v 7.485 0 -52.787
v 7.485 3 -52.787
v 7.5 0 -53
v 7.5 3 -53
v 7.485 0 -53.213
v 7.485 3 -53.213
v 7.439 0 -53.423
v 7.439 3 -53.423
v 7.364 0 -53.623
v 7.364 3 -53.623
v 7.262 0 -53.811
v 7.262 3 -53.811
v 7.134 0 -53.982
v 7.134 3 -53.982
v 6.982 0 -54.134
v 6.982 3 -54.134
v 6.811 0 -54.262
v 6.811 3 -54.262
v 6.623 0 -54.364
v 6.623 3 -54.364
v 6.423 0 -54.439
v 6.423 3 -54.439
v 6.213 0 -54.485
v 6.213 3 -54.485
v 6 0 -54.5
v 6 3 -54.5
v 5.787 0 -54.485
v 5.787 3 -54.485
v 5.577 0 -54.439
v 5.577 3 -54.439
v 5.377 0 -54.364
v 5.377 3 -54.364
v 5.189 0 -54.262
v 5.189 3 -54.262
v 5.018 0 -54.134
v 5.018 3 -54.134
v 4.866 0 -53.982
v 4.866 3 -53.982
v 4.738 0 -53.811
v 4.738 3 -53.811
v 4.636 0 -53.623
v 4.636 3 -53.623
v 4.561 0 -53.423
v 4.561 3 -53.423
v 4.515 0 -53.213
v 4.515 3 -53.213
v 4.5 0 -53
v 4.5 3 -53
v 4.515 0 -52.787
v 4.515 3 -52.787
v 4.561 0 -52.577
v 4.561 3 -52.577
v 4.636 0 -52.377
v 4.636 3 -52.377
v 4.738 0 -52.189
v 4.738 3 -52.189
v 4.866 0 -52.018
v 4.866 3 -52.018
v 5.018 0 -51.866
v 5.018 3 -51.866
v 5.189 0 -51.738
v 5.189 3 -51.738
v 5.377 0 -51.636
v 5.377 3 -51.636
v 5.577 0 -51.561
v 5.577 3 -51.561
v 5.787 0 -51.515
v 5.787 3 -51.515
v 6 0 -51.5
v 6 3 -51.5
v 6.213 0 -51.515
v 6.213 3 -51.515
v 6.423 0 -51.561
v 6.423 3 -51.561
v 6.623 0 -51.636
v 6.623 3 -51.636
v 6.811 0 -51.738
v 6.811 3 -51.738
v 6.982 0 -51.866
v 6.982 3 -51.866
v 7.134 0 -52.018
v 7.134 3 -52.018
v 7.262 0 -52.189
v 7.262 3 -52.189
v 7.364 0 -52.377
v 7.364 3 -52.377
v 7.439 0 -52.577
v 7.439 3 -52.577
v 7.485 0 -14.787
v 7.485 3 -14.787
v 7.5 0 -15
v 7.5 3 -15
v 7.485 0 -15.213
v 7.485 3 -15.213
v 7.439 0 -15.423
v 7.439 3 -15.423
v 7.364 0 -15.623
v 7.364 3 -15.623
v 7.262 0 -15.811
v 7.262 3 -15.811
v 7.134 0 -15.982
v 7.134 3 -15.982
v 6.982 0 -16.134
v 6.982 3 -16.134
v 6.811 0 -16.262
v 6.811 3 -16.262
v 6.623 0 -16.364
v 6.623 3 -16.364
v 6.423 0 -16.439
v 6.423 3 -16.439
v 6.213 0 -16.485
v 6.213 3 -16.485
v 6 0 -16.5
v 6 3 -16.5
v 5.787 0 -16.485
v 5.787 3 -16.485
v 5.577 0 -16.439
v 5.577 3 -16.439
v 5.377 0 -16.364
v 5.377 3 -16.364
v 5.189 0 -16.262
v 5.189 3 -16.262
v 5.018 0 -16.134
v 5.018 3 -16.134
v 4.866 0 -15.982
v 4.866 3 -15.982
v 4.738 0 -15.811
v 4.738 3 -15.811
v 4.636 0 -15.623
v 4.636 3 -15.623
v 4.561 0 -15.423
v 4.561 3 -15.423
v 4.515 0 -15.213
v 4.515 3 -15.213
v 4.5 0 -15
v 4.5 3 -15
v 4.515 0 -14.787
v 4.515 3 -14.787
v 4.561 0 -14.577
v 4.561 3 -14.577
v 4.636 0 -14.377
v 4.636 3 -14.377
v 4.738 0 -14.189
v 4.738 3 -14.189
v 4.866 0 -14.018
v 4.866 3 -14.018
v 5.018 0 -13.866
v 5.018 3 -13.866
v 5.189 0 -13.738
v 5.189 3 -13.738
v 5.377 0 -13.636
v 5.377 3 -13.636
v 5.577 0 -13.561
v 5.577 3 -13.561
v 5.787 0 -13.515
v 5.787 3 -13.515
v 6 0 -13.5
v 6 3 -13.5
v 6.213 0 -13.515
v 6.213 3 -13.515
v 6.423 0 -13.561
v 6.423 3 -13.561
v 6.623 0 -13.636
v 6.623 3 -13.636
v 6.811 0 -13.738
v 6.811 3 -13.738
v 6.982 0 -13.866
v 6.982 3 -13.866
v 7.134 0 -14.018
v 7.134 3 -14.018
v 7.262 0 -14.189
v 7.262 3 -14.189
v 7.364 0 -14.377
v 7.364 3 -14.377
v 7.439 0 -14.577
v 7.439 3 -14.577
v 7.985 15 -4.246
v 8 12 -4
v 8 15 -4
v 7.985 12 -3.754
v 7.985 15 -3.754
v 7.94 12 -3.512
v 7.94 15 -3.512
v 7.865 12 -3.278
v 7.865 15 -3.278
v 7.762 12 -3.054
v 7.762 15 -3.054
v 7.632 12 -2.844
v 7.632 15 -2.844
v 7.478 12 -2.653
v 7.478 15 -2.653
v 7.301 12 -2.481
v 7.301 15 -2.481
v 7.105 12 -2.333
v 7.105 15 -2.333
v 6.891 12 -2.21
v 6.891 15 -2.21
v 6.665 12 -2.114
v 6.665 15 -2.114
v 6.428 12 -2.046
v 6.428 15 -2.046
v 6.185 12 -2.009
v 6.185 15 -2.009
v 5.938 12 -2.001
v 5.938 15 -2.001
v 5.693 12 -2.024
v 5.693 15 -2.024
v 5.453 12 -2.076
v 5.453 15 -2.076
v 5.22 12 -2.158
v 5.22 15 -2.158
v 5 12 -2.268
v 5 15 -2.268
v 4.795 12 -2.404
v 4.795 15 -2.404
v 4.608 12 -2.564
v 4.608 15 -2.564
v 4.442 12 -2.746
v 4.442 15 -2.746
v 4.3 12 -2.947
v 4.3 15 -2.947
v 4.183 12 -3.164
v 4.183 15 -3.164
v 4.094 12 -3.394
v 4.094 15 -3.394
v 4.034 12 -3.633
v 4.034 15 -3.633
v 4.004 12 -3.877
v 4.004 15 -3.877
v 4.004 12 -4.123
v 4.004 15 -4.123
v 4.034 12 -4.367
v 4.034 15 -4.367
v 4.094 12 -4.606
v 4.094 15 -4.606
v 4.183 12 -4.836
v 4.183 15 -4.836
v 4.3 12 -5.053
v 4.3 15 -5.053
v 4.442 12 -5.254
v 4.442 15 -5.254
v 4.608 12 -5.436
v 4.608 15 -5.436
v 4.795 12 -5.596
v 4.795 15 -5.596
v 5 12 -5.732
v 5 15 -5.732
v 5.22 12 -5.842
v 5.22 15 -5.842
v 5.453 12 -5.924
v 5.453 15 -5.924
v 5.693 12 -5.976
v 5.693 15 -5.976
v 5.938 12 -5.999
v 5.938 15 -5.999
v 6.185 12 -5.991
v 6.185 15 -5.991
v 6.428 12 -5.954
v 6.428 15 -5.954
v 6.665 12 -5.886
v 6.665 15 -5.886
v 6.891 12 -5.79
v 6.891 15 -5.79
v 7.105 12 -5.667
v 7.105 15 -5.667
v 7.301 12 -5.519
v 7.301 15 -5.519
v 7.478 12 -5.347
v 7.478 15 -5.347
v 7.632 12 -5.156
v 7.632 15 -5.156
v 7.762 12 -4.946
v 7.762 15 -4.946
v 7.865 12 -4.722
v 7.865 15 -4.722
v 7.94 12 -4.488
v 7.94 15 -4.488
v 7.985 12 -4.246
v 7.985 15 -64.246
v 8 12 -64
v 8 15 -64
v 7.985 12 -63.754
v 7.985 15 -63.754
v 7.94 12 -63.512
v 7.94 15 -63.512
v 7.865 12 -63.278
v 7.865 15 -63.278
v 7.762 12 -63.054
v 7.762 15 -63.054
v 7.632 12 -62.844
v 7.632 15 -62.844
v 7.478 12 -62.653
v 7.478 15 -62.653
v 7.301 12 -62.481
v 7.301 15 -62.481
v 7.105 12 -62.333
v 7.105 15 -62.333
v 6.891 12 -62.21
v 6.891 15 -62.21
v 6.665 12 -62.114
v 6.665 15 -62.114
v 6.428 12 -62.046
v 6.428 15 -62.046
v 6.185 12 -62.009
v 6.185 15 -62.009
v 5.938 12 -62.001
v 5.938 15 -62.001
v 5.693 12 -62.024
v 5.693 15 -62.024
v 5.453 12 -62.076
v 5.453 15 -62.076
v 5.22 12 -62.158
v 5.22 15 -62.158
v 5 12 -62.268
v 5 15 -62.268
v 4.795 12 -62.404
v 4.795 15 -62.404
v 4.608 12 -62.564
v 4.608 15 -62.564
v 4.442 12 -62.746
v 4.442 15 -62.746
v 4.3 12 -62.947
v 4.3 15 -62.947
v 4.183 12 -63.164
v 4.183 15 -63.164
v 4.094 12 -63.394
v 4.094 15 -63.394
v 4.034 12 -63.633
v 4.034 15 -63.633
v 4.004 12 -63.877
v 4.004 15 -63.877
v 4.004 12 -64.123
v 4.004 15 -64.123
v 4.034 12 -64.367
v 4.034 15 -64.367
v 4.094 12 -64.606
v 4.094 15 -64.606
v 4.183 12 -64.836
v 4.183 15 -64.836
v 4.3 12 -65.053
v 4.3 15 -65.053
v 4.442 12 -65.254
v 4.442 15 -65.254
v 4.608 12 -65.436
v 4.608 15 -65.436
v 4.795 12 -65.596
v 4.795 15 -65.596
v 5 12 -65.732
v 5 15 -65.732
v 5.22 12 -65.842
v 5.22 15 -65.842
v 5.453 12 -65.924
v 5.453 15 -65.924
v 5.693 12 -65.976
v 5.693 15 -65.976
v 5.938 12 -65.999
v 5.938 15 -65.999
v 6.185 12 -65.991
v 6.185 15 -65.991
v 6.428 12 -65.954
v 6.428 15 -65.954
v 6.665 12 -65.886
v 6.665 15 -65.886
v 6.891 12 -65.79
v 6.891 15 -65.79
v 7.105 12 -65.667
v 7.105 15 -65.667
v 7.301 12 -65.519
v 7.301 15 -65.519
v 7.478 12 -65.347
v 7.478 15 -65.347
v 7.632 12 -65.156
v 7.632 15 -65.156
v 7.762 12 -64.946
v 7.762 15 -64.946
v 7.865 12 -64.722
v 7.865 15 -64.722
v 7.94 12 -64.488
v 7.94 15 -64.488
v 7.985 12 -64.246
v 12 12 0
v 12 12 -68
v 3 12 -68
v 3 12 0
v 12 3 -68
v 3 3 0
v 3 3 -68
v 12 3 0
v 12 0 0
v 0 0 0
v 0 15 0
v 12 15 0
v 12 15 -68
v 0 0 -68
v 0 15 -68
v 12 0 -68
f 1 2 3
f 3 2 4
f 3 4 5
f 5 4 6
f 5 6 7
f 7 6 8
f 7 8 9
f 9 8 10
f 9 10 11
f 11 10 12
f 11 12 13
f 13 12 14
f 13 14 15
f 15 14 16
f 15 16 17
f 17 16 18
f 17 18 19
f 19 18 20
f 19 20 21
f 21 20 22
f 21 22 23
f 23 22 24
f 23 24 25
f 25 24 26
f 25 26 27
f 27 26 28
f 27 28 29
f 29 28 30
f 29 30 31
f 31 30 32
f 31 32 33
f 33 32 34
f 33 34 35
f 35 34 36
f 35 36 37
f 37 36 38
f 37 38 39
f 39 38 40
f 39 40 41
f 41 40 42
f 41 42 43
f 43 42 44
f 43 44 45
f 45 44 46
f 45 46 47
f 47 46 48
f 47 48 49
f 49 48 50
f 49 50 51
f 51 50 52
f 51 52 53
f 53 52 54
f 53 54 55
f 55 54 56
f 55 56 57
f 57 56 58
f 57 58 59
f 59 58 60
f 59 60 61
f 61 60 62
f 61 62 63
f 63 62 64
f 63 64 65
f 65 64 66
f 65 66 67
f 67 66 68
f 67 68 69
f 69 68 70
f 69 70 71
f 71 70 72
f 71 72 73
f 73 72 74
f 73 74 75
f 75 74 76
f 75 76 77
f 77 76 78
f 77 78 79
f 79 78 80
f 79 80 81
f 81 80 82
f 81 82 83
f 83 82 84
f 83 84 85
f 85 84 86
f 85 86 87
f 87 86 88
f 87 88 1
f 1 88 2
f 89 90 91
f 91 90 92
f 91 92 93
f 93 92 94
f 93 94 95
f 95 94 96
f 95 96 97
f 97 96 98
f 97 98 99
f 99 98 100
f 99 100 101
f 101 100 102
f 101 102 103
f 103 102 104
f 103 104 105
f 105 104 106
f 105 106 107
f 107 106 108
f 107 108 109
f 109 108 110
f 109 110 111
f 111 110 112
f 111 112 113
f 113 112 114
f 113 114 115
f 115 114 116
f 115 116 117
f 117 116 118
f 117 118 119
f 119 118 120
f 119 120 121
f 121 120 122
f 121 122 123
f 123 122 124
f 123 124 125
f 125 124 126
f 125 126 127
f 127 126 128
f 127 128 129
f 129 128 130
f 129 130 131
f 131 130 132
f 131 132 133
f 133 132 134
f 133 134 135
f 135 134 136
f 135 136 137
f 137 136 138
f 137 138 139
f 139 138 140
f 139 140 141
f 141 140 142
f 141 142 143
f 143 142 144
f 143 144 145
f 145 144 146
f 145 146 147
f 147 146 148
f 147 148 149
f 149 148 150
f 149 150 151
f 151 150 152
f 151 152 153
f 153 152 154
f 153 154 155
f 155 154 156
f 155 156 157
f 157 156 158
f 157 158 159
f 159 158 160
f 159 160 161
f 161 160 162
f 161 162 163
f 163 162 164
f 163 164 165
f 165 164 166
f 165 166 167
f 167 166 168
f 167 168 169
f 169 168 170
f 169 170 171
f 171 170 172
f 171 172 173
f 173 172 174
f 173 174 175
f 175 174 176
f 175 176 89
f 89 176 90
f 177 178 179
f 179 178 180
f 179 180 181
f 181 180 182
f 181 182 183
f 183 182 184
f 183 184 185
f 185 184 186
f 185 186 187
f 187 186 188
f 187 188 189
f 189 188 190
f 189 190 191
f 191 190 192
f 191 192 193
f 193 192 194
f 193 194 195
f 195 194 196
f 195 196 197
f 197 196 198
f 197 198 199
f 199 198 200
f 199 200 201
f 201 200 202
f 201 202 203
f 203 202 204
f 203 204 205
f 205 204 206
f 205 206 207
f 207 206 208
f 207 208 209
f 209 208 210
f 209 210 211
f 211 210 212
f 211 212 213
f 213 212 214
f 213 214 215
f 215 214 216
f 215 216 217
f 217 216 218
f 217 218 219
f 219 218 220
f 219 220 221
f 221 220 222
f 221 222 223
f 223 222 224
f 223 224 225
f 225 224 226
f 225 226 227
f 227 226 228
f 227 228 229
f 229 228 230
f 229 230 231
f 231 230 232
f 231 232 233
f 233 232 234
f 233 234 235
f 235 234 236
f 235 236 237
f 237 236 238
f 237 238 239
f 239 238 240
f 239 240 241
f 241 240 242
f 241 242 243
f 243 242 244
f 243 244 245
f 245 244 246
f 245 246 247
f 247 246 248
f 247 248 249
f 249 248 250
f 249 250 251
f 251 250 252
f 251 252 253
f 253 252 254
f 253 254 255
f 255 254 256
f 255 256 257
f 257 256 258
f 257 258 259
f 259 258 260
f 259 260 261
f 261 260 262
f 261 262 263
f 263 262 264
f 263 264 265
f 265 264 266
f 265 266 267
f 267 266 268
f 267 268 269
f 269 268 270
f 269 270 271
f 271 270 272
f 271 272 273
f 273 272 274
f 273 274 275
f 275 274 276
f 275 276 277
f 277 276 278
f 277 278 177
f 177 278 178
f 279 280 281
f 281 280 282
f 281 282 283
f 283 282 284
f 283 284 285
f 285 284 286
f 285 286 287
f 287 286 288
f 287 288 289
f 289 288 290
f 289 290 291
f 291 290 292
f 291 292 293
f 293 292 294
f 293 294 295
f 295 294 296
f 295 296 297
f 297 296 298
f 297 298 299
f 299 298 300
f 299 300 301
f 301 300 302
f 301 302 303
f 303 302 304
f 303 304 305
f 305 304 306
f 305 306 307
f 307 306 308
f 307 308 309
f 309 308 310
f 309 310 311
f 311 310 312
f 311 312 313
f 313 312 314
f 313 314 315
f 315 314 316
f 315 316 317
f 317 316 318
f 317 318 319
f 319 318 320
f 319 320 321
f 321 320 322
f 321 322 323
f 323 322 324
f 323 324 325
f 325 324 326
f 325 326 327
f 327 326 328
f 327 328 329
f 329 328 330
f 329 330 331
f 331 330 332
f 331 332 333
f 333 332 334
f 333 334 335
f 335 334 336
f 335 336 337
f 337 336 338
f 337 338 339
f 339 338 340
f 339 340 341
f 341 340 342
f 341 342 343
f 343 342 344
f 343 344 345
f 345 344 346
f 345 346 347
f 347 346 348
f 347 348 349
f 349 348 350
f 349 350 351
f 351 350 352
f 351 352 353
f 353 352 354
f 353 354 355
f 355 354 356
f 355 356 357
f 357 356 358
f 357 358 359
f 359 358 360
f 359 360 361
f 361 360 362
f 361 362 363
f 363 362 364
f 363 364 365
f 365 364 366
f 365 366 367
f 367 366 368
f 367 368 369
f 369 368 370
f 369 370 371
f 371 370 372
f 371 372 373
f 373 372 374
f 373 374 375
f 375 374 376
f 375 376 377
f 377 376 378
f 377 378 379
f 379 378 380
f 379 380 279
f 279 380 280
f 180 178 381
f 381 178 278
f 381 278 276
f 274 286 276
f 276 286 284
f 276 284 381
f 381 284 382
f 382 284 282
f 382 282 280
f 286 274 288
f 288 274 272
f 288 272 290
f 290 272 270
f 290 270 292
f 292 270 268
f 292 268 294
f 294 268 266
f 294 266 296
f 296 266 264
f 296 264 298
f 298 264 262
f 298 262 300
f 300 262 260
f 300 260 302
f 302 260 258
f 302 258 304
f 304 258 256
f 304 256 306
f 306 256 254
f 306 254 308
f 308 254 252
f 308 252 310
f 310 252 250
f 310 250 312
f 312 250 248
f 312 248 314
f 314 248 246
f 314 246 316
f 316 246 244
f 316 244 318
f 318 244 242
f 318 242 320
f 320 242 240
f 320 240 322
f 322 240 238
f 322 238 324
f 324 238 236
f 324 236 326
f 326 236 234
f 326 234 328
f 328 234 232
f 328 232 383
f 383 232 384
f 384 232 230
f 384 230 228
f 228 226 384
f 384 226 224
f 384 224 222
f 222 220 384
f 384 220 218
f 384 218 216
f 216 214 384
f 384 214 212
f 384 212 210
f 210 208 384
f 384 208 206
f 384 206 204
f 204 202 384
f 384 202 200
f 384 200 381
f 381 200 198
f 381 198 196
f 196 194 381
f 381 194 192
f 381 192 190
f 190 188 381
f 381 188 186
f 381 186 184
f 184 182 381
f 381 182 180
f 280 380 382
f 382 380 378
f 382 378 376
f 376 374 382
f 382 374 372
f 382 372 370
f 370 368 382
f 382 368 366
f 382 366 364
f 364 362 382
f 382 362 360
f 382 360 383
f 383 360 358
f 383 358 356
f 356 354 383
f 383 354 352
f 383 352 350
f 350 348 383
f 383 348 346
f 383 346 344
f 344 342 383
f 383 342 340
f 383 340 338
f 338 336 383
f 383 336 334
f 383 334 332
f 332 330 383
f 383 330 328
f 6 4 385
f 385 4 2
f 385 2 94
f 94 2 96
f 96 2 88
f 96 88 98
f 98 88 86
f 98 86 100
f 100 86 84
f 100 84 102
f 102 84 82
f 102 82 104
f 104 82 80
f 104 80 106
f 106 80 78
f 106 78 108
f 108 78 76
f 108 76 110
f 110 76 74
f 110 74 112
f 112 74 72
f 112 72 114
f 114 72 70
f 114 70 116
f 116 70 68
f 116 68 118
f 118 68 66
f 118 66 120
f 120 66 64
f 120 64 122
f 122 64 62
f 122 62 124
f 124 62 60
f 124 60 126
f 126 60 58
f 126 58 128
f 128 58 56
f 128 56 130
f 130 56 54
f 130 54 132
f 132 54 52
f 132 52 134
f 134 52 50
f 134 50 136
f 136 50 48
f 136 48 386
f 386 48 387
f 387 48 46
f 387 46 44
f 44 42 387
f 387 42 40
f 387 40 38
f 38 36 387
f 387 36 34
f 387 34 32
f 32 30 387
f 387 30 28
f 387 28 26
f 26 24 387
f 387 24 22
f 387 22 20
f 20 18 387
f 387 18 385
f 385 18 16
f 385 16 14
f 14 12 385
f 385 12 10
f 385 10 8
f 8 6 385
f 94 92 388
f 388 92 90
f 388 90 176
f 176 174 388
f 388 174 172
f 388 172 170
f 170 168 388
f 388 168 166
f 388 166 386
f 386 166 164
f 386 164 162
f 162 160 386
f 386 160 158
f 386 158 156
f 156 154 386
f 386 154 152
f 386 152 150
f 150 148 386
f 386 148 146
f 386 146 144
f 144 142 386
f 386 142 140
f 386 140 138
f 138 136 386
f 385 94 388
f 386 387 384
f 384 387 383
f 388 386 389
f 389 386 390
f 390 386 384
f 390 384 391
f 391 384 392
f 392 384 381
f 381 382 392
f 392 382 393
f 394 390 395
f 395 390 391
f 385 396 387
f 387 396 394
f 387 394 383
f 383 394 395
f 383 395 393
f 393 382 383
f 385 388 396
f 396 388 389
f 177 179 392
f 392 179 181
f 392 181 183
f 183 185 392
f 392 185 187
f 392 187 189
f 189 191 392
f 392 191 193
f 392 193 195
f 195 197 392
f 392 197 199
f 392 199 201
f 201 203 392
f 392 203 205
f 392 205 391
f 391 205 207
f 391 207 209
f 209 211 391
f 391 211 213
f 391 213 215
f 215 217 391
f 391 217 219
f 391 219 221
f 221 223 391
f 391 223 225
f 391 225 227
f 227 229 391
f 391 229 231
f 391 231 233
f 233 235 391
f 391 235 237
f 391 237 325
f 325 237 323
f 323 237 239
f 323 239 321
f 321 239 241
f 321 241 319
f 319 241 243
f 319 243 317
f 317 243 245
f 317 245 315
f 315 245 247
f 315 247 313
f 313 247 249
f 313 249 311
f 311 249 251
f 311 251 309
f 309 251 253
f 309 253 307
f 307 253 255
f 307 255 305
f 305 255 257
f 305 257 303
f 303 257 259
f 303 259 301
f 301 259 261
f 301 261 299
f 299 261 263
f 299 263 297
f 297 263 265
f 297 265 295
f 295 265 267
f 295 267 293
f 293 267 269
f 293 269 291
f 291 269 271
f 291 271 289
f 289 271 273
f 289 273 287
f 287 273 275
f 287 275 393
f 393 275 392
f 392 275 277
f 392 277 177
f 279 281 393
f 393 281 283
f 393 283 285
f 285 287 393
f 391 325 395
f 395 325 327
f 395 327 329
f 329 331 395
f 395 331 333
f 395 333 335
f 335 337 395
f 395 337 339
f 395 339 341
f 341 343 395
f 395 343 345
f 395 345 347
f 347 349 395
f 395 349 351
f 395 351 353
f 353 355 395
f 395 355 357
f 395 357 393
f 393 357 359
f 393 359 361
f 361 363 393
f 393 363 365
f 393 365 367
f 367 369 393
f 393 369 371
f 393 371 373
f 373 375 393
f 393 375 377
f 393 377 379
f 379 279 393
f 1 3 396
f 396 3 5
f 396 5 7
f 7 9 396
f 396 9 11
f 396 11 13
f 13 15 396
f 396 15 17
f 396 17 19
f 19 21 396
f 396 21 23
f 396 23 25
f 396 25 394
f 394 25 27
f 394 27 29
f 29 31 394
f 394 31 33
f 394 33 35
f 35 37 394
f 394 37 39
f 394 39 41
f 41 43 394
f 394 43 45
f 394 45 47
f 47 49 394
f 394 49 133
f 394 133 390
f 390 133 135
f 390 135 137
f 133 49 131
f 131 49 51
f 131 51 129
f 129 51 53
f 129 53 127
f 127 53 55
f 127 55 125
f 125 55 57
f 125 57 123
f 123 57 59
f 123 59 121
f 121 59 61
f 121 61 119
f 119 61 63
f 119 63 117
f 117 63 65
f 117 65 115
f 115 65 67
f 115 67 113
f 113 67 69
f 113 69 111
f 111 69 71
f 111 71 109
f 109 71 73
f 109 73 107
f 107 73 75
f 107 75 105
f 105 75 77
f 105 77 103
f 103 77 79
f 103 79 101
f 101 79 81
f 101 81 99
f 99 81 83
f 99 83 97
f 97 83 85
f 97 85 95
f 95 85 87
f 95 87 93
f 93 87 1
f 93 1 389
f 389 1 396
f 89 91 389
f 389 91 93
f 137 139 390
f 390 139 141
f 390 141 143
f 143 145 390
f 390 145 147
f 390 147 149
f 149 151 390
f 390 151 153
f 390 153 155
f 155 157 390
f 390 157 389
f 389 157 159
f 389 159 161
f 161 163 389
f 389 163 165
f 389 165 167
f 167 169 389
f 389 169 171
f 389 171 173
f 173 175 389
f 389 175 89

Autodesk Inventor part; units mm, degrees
ref_plane "YZ Plane" through (0, 0, 0) normal (1, 0, 0) x (0, 1, 0)
ref_plane "XZ Plane" through (0, 0, 0) normal (0, 1, 0) x (-1, 0, 0)
ref_plane "XY Plane" through (0, 0, 0) normal (0, 0, 1) x (1, 0, 0)
sketch "Sketch1" plane through (0, 0, 0) normal (0, 1, 0) x (-1, 0, 0)
  line L0 (0, 0) -> (-12, 0)
  line L1 (-12, 0) -> (-12, -68)
  line L2 (-12, -68) -> (0, -68)
  line L3 (0, -68) -> (0, 0)
  dimension "d0" = 12
  dimension "d1" = 68
extrude "Extrusion1" add sketch "Sketch1" along normal blind 15
sketch "Sketch4" plane through (12, 0, 0) normal (1, 0, 0) x (0, 0, -1)
  line L0 (0, 0) -> (0, 15) projected
  line L1 (0, 3) -> (68, 3)
  line L2 (68, 3) -> (68, 12)
  line L3 (68, 12) -> (0, 12)
  line L4 (0, 12) -> (0, 3)
  line L5 (0, 0) -> (68, 0) projected
  dimension "d30" = 68
  dimension "d31" = 9
  dimension "d32" = 3
extrude "Extrusion2" cut sketch "Sketch4" against normal blind 9
sketch "Sketch2" plane through (0, 15, 0) normal (0, 1, 0) x (1, 0, 0)
  circle A0 centre (6, 64) radius 2
  circle A1 centre (6, 4) radius 2
  line L0 (0, 68) -> (0, 0) projected
  line L1 (12, 68) -> (0, 68) projected
  line L2 (0, 0) -> (12, 0) projected
  dimension "d4" = 4
  dimension "d5" = 4
  dimension "d6" = 6
  dimension "d7" = 6
  dimension "d8" = 4
  dimension "d9" = 4
hole "Hole1" at (6, 15, -4) at (6, 15, -64) direction (0, -1, 0) diameter 4 depth 3 tip angle 118
sketch "Sketch3" plane through (0, 0, 0) normal (0, -1, 0) x (1, 0, 0)
  circle A0 centre (6, -15) radius 1.5
  circle A1 centre (6, -53) radius 1.5
  line L0 (0, -68) -> (0, 0) projected
  line L1 (0, 0) -> (12, 0) projected
  line L2 (12, -68) -> (0, -68) projected
  dimension "d17" = 3
  dimension "d18" = 3
  dimension "d19" = 6
  dimension "d20" = 6
  dimension "d21" = 15
  dimension "d22" = 15
hole "Hole2" at (6, 0, -53) at (6, 0, -15) direction (0, 1, 0) diameter 3 depth 3 tip angle 118
thread "Thread1" size "M4x0.7" class "6H" standard "ANSI Metric M Profile" full length
thread "Thread2" size "M4x0.7" class "6H" standard "ANSI Metric M Profile" full length
thread "Thread3" size "M3x0.5" class "6H" standard "ANSI Metric M Profile" full length
thread "Thread4" size "M3x0.5" class "6H" standard "ANSI Metric M Profile" full length
properties part number "sensor3_lock" material "Aluminum 6061"
